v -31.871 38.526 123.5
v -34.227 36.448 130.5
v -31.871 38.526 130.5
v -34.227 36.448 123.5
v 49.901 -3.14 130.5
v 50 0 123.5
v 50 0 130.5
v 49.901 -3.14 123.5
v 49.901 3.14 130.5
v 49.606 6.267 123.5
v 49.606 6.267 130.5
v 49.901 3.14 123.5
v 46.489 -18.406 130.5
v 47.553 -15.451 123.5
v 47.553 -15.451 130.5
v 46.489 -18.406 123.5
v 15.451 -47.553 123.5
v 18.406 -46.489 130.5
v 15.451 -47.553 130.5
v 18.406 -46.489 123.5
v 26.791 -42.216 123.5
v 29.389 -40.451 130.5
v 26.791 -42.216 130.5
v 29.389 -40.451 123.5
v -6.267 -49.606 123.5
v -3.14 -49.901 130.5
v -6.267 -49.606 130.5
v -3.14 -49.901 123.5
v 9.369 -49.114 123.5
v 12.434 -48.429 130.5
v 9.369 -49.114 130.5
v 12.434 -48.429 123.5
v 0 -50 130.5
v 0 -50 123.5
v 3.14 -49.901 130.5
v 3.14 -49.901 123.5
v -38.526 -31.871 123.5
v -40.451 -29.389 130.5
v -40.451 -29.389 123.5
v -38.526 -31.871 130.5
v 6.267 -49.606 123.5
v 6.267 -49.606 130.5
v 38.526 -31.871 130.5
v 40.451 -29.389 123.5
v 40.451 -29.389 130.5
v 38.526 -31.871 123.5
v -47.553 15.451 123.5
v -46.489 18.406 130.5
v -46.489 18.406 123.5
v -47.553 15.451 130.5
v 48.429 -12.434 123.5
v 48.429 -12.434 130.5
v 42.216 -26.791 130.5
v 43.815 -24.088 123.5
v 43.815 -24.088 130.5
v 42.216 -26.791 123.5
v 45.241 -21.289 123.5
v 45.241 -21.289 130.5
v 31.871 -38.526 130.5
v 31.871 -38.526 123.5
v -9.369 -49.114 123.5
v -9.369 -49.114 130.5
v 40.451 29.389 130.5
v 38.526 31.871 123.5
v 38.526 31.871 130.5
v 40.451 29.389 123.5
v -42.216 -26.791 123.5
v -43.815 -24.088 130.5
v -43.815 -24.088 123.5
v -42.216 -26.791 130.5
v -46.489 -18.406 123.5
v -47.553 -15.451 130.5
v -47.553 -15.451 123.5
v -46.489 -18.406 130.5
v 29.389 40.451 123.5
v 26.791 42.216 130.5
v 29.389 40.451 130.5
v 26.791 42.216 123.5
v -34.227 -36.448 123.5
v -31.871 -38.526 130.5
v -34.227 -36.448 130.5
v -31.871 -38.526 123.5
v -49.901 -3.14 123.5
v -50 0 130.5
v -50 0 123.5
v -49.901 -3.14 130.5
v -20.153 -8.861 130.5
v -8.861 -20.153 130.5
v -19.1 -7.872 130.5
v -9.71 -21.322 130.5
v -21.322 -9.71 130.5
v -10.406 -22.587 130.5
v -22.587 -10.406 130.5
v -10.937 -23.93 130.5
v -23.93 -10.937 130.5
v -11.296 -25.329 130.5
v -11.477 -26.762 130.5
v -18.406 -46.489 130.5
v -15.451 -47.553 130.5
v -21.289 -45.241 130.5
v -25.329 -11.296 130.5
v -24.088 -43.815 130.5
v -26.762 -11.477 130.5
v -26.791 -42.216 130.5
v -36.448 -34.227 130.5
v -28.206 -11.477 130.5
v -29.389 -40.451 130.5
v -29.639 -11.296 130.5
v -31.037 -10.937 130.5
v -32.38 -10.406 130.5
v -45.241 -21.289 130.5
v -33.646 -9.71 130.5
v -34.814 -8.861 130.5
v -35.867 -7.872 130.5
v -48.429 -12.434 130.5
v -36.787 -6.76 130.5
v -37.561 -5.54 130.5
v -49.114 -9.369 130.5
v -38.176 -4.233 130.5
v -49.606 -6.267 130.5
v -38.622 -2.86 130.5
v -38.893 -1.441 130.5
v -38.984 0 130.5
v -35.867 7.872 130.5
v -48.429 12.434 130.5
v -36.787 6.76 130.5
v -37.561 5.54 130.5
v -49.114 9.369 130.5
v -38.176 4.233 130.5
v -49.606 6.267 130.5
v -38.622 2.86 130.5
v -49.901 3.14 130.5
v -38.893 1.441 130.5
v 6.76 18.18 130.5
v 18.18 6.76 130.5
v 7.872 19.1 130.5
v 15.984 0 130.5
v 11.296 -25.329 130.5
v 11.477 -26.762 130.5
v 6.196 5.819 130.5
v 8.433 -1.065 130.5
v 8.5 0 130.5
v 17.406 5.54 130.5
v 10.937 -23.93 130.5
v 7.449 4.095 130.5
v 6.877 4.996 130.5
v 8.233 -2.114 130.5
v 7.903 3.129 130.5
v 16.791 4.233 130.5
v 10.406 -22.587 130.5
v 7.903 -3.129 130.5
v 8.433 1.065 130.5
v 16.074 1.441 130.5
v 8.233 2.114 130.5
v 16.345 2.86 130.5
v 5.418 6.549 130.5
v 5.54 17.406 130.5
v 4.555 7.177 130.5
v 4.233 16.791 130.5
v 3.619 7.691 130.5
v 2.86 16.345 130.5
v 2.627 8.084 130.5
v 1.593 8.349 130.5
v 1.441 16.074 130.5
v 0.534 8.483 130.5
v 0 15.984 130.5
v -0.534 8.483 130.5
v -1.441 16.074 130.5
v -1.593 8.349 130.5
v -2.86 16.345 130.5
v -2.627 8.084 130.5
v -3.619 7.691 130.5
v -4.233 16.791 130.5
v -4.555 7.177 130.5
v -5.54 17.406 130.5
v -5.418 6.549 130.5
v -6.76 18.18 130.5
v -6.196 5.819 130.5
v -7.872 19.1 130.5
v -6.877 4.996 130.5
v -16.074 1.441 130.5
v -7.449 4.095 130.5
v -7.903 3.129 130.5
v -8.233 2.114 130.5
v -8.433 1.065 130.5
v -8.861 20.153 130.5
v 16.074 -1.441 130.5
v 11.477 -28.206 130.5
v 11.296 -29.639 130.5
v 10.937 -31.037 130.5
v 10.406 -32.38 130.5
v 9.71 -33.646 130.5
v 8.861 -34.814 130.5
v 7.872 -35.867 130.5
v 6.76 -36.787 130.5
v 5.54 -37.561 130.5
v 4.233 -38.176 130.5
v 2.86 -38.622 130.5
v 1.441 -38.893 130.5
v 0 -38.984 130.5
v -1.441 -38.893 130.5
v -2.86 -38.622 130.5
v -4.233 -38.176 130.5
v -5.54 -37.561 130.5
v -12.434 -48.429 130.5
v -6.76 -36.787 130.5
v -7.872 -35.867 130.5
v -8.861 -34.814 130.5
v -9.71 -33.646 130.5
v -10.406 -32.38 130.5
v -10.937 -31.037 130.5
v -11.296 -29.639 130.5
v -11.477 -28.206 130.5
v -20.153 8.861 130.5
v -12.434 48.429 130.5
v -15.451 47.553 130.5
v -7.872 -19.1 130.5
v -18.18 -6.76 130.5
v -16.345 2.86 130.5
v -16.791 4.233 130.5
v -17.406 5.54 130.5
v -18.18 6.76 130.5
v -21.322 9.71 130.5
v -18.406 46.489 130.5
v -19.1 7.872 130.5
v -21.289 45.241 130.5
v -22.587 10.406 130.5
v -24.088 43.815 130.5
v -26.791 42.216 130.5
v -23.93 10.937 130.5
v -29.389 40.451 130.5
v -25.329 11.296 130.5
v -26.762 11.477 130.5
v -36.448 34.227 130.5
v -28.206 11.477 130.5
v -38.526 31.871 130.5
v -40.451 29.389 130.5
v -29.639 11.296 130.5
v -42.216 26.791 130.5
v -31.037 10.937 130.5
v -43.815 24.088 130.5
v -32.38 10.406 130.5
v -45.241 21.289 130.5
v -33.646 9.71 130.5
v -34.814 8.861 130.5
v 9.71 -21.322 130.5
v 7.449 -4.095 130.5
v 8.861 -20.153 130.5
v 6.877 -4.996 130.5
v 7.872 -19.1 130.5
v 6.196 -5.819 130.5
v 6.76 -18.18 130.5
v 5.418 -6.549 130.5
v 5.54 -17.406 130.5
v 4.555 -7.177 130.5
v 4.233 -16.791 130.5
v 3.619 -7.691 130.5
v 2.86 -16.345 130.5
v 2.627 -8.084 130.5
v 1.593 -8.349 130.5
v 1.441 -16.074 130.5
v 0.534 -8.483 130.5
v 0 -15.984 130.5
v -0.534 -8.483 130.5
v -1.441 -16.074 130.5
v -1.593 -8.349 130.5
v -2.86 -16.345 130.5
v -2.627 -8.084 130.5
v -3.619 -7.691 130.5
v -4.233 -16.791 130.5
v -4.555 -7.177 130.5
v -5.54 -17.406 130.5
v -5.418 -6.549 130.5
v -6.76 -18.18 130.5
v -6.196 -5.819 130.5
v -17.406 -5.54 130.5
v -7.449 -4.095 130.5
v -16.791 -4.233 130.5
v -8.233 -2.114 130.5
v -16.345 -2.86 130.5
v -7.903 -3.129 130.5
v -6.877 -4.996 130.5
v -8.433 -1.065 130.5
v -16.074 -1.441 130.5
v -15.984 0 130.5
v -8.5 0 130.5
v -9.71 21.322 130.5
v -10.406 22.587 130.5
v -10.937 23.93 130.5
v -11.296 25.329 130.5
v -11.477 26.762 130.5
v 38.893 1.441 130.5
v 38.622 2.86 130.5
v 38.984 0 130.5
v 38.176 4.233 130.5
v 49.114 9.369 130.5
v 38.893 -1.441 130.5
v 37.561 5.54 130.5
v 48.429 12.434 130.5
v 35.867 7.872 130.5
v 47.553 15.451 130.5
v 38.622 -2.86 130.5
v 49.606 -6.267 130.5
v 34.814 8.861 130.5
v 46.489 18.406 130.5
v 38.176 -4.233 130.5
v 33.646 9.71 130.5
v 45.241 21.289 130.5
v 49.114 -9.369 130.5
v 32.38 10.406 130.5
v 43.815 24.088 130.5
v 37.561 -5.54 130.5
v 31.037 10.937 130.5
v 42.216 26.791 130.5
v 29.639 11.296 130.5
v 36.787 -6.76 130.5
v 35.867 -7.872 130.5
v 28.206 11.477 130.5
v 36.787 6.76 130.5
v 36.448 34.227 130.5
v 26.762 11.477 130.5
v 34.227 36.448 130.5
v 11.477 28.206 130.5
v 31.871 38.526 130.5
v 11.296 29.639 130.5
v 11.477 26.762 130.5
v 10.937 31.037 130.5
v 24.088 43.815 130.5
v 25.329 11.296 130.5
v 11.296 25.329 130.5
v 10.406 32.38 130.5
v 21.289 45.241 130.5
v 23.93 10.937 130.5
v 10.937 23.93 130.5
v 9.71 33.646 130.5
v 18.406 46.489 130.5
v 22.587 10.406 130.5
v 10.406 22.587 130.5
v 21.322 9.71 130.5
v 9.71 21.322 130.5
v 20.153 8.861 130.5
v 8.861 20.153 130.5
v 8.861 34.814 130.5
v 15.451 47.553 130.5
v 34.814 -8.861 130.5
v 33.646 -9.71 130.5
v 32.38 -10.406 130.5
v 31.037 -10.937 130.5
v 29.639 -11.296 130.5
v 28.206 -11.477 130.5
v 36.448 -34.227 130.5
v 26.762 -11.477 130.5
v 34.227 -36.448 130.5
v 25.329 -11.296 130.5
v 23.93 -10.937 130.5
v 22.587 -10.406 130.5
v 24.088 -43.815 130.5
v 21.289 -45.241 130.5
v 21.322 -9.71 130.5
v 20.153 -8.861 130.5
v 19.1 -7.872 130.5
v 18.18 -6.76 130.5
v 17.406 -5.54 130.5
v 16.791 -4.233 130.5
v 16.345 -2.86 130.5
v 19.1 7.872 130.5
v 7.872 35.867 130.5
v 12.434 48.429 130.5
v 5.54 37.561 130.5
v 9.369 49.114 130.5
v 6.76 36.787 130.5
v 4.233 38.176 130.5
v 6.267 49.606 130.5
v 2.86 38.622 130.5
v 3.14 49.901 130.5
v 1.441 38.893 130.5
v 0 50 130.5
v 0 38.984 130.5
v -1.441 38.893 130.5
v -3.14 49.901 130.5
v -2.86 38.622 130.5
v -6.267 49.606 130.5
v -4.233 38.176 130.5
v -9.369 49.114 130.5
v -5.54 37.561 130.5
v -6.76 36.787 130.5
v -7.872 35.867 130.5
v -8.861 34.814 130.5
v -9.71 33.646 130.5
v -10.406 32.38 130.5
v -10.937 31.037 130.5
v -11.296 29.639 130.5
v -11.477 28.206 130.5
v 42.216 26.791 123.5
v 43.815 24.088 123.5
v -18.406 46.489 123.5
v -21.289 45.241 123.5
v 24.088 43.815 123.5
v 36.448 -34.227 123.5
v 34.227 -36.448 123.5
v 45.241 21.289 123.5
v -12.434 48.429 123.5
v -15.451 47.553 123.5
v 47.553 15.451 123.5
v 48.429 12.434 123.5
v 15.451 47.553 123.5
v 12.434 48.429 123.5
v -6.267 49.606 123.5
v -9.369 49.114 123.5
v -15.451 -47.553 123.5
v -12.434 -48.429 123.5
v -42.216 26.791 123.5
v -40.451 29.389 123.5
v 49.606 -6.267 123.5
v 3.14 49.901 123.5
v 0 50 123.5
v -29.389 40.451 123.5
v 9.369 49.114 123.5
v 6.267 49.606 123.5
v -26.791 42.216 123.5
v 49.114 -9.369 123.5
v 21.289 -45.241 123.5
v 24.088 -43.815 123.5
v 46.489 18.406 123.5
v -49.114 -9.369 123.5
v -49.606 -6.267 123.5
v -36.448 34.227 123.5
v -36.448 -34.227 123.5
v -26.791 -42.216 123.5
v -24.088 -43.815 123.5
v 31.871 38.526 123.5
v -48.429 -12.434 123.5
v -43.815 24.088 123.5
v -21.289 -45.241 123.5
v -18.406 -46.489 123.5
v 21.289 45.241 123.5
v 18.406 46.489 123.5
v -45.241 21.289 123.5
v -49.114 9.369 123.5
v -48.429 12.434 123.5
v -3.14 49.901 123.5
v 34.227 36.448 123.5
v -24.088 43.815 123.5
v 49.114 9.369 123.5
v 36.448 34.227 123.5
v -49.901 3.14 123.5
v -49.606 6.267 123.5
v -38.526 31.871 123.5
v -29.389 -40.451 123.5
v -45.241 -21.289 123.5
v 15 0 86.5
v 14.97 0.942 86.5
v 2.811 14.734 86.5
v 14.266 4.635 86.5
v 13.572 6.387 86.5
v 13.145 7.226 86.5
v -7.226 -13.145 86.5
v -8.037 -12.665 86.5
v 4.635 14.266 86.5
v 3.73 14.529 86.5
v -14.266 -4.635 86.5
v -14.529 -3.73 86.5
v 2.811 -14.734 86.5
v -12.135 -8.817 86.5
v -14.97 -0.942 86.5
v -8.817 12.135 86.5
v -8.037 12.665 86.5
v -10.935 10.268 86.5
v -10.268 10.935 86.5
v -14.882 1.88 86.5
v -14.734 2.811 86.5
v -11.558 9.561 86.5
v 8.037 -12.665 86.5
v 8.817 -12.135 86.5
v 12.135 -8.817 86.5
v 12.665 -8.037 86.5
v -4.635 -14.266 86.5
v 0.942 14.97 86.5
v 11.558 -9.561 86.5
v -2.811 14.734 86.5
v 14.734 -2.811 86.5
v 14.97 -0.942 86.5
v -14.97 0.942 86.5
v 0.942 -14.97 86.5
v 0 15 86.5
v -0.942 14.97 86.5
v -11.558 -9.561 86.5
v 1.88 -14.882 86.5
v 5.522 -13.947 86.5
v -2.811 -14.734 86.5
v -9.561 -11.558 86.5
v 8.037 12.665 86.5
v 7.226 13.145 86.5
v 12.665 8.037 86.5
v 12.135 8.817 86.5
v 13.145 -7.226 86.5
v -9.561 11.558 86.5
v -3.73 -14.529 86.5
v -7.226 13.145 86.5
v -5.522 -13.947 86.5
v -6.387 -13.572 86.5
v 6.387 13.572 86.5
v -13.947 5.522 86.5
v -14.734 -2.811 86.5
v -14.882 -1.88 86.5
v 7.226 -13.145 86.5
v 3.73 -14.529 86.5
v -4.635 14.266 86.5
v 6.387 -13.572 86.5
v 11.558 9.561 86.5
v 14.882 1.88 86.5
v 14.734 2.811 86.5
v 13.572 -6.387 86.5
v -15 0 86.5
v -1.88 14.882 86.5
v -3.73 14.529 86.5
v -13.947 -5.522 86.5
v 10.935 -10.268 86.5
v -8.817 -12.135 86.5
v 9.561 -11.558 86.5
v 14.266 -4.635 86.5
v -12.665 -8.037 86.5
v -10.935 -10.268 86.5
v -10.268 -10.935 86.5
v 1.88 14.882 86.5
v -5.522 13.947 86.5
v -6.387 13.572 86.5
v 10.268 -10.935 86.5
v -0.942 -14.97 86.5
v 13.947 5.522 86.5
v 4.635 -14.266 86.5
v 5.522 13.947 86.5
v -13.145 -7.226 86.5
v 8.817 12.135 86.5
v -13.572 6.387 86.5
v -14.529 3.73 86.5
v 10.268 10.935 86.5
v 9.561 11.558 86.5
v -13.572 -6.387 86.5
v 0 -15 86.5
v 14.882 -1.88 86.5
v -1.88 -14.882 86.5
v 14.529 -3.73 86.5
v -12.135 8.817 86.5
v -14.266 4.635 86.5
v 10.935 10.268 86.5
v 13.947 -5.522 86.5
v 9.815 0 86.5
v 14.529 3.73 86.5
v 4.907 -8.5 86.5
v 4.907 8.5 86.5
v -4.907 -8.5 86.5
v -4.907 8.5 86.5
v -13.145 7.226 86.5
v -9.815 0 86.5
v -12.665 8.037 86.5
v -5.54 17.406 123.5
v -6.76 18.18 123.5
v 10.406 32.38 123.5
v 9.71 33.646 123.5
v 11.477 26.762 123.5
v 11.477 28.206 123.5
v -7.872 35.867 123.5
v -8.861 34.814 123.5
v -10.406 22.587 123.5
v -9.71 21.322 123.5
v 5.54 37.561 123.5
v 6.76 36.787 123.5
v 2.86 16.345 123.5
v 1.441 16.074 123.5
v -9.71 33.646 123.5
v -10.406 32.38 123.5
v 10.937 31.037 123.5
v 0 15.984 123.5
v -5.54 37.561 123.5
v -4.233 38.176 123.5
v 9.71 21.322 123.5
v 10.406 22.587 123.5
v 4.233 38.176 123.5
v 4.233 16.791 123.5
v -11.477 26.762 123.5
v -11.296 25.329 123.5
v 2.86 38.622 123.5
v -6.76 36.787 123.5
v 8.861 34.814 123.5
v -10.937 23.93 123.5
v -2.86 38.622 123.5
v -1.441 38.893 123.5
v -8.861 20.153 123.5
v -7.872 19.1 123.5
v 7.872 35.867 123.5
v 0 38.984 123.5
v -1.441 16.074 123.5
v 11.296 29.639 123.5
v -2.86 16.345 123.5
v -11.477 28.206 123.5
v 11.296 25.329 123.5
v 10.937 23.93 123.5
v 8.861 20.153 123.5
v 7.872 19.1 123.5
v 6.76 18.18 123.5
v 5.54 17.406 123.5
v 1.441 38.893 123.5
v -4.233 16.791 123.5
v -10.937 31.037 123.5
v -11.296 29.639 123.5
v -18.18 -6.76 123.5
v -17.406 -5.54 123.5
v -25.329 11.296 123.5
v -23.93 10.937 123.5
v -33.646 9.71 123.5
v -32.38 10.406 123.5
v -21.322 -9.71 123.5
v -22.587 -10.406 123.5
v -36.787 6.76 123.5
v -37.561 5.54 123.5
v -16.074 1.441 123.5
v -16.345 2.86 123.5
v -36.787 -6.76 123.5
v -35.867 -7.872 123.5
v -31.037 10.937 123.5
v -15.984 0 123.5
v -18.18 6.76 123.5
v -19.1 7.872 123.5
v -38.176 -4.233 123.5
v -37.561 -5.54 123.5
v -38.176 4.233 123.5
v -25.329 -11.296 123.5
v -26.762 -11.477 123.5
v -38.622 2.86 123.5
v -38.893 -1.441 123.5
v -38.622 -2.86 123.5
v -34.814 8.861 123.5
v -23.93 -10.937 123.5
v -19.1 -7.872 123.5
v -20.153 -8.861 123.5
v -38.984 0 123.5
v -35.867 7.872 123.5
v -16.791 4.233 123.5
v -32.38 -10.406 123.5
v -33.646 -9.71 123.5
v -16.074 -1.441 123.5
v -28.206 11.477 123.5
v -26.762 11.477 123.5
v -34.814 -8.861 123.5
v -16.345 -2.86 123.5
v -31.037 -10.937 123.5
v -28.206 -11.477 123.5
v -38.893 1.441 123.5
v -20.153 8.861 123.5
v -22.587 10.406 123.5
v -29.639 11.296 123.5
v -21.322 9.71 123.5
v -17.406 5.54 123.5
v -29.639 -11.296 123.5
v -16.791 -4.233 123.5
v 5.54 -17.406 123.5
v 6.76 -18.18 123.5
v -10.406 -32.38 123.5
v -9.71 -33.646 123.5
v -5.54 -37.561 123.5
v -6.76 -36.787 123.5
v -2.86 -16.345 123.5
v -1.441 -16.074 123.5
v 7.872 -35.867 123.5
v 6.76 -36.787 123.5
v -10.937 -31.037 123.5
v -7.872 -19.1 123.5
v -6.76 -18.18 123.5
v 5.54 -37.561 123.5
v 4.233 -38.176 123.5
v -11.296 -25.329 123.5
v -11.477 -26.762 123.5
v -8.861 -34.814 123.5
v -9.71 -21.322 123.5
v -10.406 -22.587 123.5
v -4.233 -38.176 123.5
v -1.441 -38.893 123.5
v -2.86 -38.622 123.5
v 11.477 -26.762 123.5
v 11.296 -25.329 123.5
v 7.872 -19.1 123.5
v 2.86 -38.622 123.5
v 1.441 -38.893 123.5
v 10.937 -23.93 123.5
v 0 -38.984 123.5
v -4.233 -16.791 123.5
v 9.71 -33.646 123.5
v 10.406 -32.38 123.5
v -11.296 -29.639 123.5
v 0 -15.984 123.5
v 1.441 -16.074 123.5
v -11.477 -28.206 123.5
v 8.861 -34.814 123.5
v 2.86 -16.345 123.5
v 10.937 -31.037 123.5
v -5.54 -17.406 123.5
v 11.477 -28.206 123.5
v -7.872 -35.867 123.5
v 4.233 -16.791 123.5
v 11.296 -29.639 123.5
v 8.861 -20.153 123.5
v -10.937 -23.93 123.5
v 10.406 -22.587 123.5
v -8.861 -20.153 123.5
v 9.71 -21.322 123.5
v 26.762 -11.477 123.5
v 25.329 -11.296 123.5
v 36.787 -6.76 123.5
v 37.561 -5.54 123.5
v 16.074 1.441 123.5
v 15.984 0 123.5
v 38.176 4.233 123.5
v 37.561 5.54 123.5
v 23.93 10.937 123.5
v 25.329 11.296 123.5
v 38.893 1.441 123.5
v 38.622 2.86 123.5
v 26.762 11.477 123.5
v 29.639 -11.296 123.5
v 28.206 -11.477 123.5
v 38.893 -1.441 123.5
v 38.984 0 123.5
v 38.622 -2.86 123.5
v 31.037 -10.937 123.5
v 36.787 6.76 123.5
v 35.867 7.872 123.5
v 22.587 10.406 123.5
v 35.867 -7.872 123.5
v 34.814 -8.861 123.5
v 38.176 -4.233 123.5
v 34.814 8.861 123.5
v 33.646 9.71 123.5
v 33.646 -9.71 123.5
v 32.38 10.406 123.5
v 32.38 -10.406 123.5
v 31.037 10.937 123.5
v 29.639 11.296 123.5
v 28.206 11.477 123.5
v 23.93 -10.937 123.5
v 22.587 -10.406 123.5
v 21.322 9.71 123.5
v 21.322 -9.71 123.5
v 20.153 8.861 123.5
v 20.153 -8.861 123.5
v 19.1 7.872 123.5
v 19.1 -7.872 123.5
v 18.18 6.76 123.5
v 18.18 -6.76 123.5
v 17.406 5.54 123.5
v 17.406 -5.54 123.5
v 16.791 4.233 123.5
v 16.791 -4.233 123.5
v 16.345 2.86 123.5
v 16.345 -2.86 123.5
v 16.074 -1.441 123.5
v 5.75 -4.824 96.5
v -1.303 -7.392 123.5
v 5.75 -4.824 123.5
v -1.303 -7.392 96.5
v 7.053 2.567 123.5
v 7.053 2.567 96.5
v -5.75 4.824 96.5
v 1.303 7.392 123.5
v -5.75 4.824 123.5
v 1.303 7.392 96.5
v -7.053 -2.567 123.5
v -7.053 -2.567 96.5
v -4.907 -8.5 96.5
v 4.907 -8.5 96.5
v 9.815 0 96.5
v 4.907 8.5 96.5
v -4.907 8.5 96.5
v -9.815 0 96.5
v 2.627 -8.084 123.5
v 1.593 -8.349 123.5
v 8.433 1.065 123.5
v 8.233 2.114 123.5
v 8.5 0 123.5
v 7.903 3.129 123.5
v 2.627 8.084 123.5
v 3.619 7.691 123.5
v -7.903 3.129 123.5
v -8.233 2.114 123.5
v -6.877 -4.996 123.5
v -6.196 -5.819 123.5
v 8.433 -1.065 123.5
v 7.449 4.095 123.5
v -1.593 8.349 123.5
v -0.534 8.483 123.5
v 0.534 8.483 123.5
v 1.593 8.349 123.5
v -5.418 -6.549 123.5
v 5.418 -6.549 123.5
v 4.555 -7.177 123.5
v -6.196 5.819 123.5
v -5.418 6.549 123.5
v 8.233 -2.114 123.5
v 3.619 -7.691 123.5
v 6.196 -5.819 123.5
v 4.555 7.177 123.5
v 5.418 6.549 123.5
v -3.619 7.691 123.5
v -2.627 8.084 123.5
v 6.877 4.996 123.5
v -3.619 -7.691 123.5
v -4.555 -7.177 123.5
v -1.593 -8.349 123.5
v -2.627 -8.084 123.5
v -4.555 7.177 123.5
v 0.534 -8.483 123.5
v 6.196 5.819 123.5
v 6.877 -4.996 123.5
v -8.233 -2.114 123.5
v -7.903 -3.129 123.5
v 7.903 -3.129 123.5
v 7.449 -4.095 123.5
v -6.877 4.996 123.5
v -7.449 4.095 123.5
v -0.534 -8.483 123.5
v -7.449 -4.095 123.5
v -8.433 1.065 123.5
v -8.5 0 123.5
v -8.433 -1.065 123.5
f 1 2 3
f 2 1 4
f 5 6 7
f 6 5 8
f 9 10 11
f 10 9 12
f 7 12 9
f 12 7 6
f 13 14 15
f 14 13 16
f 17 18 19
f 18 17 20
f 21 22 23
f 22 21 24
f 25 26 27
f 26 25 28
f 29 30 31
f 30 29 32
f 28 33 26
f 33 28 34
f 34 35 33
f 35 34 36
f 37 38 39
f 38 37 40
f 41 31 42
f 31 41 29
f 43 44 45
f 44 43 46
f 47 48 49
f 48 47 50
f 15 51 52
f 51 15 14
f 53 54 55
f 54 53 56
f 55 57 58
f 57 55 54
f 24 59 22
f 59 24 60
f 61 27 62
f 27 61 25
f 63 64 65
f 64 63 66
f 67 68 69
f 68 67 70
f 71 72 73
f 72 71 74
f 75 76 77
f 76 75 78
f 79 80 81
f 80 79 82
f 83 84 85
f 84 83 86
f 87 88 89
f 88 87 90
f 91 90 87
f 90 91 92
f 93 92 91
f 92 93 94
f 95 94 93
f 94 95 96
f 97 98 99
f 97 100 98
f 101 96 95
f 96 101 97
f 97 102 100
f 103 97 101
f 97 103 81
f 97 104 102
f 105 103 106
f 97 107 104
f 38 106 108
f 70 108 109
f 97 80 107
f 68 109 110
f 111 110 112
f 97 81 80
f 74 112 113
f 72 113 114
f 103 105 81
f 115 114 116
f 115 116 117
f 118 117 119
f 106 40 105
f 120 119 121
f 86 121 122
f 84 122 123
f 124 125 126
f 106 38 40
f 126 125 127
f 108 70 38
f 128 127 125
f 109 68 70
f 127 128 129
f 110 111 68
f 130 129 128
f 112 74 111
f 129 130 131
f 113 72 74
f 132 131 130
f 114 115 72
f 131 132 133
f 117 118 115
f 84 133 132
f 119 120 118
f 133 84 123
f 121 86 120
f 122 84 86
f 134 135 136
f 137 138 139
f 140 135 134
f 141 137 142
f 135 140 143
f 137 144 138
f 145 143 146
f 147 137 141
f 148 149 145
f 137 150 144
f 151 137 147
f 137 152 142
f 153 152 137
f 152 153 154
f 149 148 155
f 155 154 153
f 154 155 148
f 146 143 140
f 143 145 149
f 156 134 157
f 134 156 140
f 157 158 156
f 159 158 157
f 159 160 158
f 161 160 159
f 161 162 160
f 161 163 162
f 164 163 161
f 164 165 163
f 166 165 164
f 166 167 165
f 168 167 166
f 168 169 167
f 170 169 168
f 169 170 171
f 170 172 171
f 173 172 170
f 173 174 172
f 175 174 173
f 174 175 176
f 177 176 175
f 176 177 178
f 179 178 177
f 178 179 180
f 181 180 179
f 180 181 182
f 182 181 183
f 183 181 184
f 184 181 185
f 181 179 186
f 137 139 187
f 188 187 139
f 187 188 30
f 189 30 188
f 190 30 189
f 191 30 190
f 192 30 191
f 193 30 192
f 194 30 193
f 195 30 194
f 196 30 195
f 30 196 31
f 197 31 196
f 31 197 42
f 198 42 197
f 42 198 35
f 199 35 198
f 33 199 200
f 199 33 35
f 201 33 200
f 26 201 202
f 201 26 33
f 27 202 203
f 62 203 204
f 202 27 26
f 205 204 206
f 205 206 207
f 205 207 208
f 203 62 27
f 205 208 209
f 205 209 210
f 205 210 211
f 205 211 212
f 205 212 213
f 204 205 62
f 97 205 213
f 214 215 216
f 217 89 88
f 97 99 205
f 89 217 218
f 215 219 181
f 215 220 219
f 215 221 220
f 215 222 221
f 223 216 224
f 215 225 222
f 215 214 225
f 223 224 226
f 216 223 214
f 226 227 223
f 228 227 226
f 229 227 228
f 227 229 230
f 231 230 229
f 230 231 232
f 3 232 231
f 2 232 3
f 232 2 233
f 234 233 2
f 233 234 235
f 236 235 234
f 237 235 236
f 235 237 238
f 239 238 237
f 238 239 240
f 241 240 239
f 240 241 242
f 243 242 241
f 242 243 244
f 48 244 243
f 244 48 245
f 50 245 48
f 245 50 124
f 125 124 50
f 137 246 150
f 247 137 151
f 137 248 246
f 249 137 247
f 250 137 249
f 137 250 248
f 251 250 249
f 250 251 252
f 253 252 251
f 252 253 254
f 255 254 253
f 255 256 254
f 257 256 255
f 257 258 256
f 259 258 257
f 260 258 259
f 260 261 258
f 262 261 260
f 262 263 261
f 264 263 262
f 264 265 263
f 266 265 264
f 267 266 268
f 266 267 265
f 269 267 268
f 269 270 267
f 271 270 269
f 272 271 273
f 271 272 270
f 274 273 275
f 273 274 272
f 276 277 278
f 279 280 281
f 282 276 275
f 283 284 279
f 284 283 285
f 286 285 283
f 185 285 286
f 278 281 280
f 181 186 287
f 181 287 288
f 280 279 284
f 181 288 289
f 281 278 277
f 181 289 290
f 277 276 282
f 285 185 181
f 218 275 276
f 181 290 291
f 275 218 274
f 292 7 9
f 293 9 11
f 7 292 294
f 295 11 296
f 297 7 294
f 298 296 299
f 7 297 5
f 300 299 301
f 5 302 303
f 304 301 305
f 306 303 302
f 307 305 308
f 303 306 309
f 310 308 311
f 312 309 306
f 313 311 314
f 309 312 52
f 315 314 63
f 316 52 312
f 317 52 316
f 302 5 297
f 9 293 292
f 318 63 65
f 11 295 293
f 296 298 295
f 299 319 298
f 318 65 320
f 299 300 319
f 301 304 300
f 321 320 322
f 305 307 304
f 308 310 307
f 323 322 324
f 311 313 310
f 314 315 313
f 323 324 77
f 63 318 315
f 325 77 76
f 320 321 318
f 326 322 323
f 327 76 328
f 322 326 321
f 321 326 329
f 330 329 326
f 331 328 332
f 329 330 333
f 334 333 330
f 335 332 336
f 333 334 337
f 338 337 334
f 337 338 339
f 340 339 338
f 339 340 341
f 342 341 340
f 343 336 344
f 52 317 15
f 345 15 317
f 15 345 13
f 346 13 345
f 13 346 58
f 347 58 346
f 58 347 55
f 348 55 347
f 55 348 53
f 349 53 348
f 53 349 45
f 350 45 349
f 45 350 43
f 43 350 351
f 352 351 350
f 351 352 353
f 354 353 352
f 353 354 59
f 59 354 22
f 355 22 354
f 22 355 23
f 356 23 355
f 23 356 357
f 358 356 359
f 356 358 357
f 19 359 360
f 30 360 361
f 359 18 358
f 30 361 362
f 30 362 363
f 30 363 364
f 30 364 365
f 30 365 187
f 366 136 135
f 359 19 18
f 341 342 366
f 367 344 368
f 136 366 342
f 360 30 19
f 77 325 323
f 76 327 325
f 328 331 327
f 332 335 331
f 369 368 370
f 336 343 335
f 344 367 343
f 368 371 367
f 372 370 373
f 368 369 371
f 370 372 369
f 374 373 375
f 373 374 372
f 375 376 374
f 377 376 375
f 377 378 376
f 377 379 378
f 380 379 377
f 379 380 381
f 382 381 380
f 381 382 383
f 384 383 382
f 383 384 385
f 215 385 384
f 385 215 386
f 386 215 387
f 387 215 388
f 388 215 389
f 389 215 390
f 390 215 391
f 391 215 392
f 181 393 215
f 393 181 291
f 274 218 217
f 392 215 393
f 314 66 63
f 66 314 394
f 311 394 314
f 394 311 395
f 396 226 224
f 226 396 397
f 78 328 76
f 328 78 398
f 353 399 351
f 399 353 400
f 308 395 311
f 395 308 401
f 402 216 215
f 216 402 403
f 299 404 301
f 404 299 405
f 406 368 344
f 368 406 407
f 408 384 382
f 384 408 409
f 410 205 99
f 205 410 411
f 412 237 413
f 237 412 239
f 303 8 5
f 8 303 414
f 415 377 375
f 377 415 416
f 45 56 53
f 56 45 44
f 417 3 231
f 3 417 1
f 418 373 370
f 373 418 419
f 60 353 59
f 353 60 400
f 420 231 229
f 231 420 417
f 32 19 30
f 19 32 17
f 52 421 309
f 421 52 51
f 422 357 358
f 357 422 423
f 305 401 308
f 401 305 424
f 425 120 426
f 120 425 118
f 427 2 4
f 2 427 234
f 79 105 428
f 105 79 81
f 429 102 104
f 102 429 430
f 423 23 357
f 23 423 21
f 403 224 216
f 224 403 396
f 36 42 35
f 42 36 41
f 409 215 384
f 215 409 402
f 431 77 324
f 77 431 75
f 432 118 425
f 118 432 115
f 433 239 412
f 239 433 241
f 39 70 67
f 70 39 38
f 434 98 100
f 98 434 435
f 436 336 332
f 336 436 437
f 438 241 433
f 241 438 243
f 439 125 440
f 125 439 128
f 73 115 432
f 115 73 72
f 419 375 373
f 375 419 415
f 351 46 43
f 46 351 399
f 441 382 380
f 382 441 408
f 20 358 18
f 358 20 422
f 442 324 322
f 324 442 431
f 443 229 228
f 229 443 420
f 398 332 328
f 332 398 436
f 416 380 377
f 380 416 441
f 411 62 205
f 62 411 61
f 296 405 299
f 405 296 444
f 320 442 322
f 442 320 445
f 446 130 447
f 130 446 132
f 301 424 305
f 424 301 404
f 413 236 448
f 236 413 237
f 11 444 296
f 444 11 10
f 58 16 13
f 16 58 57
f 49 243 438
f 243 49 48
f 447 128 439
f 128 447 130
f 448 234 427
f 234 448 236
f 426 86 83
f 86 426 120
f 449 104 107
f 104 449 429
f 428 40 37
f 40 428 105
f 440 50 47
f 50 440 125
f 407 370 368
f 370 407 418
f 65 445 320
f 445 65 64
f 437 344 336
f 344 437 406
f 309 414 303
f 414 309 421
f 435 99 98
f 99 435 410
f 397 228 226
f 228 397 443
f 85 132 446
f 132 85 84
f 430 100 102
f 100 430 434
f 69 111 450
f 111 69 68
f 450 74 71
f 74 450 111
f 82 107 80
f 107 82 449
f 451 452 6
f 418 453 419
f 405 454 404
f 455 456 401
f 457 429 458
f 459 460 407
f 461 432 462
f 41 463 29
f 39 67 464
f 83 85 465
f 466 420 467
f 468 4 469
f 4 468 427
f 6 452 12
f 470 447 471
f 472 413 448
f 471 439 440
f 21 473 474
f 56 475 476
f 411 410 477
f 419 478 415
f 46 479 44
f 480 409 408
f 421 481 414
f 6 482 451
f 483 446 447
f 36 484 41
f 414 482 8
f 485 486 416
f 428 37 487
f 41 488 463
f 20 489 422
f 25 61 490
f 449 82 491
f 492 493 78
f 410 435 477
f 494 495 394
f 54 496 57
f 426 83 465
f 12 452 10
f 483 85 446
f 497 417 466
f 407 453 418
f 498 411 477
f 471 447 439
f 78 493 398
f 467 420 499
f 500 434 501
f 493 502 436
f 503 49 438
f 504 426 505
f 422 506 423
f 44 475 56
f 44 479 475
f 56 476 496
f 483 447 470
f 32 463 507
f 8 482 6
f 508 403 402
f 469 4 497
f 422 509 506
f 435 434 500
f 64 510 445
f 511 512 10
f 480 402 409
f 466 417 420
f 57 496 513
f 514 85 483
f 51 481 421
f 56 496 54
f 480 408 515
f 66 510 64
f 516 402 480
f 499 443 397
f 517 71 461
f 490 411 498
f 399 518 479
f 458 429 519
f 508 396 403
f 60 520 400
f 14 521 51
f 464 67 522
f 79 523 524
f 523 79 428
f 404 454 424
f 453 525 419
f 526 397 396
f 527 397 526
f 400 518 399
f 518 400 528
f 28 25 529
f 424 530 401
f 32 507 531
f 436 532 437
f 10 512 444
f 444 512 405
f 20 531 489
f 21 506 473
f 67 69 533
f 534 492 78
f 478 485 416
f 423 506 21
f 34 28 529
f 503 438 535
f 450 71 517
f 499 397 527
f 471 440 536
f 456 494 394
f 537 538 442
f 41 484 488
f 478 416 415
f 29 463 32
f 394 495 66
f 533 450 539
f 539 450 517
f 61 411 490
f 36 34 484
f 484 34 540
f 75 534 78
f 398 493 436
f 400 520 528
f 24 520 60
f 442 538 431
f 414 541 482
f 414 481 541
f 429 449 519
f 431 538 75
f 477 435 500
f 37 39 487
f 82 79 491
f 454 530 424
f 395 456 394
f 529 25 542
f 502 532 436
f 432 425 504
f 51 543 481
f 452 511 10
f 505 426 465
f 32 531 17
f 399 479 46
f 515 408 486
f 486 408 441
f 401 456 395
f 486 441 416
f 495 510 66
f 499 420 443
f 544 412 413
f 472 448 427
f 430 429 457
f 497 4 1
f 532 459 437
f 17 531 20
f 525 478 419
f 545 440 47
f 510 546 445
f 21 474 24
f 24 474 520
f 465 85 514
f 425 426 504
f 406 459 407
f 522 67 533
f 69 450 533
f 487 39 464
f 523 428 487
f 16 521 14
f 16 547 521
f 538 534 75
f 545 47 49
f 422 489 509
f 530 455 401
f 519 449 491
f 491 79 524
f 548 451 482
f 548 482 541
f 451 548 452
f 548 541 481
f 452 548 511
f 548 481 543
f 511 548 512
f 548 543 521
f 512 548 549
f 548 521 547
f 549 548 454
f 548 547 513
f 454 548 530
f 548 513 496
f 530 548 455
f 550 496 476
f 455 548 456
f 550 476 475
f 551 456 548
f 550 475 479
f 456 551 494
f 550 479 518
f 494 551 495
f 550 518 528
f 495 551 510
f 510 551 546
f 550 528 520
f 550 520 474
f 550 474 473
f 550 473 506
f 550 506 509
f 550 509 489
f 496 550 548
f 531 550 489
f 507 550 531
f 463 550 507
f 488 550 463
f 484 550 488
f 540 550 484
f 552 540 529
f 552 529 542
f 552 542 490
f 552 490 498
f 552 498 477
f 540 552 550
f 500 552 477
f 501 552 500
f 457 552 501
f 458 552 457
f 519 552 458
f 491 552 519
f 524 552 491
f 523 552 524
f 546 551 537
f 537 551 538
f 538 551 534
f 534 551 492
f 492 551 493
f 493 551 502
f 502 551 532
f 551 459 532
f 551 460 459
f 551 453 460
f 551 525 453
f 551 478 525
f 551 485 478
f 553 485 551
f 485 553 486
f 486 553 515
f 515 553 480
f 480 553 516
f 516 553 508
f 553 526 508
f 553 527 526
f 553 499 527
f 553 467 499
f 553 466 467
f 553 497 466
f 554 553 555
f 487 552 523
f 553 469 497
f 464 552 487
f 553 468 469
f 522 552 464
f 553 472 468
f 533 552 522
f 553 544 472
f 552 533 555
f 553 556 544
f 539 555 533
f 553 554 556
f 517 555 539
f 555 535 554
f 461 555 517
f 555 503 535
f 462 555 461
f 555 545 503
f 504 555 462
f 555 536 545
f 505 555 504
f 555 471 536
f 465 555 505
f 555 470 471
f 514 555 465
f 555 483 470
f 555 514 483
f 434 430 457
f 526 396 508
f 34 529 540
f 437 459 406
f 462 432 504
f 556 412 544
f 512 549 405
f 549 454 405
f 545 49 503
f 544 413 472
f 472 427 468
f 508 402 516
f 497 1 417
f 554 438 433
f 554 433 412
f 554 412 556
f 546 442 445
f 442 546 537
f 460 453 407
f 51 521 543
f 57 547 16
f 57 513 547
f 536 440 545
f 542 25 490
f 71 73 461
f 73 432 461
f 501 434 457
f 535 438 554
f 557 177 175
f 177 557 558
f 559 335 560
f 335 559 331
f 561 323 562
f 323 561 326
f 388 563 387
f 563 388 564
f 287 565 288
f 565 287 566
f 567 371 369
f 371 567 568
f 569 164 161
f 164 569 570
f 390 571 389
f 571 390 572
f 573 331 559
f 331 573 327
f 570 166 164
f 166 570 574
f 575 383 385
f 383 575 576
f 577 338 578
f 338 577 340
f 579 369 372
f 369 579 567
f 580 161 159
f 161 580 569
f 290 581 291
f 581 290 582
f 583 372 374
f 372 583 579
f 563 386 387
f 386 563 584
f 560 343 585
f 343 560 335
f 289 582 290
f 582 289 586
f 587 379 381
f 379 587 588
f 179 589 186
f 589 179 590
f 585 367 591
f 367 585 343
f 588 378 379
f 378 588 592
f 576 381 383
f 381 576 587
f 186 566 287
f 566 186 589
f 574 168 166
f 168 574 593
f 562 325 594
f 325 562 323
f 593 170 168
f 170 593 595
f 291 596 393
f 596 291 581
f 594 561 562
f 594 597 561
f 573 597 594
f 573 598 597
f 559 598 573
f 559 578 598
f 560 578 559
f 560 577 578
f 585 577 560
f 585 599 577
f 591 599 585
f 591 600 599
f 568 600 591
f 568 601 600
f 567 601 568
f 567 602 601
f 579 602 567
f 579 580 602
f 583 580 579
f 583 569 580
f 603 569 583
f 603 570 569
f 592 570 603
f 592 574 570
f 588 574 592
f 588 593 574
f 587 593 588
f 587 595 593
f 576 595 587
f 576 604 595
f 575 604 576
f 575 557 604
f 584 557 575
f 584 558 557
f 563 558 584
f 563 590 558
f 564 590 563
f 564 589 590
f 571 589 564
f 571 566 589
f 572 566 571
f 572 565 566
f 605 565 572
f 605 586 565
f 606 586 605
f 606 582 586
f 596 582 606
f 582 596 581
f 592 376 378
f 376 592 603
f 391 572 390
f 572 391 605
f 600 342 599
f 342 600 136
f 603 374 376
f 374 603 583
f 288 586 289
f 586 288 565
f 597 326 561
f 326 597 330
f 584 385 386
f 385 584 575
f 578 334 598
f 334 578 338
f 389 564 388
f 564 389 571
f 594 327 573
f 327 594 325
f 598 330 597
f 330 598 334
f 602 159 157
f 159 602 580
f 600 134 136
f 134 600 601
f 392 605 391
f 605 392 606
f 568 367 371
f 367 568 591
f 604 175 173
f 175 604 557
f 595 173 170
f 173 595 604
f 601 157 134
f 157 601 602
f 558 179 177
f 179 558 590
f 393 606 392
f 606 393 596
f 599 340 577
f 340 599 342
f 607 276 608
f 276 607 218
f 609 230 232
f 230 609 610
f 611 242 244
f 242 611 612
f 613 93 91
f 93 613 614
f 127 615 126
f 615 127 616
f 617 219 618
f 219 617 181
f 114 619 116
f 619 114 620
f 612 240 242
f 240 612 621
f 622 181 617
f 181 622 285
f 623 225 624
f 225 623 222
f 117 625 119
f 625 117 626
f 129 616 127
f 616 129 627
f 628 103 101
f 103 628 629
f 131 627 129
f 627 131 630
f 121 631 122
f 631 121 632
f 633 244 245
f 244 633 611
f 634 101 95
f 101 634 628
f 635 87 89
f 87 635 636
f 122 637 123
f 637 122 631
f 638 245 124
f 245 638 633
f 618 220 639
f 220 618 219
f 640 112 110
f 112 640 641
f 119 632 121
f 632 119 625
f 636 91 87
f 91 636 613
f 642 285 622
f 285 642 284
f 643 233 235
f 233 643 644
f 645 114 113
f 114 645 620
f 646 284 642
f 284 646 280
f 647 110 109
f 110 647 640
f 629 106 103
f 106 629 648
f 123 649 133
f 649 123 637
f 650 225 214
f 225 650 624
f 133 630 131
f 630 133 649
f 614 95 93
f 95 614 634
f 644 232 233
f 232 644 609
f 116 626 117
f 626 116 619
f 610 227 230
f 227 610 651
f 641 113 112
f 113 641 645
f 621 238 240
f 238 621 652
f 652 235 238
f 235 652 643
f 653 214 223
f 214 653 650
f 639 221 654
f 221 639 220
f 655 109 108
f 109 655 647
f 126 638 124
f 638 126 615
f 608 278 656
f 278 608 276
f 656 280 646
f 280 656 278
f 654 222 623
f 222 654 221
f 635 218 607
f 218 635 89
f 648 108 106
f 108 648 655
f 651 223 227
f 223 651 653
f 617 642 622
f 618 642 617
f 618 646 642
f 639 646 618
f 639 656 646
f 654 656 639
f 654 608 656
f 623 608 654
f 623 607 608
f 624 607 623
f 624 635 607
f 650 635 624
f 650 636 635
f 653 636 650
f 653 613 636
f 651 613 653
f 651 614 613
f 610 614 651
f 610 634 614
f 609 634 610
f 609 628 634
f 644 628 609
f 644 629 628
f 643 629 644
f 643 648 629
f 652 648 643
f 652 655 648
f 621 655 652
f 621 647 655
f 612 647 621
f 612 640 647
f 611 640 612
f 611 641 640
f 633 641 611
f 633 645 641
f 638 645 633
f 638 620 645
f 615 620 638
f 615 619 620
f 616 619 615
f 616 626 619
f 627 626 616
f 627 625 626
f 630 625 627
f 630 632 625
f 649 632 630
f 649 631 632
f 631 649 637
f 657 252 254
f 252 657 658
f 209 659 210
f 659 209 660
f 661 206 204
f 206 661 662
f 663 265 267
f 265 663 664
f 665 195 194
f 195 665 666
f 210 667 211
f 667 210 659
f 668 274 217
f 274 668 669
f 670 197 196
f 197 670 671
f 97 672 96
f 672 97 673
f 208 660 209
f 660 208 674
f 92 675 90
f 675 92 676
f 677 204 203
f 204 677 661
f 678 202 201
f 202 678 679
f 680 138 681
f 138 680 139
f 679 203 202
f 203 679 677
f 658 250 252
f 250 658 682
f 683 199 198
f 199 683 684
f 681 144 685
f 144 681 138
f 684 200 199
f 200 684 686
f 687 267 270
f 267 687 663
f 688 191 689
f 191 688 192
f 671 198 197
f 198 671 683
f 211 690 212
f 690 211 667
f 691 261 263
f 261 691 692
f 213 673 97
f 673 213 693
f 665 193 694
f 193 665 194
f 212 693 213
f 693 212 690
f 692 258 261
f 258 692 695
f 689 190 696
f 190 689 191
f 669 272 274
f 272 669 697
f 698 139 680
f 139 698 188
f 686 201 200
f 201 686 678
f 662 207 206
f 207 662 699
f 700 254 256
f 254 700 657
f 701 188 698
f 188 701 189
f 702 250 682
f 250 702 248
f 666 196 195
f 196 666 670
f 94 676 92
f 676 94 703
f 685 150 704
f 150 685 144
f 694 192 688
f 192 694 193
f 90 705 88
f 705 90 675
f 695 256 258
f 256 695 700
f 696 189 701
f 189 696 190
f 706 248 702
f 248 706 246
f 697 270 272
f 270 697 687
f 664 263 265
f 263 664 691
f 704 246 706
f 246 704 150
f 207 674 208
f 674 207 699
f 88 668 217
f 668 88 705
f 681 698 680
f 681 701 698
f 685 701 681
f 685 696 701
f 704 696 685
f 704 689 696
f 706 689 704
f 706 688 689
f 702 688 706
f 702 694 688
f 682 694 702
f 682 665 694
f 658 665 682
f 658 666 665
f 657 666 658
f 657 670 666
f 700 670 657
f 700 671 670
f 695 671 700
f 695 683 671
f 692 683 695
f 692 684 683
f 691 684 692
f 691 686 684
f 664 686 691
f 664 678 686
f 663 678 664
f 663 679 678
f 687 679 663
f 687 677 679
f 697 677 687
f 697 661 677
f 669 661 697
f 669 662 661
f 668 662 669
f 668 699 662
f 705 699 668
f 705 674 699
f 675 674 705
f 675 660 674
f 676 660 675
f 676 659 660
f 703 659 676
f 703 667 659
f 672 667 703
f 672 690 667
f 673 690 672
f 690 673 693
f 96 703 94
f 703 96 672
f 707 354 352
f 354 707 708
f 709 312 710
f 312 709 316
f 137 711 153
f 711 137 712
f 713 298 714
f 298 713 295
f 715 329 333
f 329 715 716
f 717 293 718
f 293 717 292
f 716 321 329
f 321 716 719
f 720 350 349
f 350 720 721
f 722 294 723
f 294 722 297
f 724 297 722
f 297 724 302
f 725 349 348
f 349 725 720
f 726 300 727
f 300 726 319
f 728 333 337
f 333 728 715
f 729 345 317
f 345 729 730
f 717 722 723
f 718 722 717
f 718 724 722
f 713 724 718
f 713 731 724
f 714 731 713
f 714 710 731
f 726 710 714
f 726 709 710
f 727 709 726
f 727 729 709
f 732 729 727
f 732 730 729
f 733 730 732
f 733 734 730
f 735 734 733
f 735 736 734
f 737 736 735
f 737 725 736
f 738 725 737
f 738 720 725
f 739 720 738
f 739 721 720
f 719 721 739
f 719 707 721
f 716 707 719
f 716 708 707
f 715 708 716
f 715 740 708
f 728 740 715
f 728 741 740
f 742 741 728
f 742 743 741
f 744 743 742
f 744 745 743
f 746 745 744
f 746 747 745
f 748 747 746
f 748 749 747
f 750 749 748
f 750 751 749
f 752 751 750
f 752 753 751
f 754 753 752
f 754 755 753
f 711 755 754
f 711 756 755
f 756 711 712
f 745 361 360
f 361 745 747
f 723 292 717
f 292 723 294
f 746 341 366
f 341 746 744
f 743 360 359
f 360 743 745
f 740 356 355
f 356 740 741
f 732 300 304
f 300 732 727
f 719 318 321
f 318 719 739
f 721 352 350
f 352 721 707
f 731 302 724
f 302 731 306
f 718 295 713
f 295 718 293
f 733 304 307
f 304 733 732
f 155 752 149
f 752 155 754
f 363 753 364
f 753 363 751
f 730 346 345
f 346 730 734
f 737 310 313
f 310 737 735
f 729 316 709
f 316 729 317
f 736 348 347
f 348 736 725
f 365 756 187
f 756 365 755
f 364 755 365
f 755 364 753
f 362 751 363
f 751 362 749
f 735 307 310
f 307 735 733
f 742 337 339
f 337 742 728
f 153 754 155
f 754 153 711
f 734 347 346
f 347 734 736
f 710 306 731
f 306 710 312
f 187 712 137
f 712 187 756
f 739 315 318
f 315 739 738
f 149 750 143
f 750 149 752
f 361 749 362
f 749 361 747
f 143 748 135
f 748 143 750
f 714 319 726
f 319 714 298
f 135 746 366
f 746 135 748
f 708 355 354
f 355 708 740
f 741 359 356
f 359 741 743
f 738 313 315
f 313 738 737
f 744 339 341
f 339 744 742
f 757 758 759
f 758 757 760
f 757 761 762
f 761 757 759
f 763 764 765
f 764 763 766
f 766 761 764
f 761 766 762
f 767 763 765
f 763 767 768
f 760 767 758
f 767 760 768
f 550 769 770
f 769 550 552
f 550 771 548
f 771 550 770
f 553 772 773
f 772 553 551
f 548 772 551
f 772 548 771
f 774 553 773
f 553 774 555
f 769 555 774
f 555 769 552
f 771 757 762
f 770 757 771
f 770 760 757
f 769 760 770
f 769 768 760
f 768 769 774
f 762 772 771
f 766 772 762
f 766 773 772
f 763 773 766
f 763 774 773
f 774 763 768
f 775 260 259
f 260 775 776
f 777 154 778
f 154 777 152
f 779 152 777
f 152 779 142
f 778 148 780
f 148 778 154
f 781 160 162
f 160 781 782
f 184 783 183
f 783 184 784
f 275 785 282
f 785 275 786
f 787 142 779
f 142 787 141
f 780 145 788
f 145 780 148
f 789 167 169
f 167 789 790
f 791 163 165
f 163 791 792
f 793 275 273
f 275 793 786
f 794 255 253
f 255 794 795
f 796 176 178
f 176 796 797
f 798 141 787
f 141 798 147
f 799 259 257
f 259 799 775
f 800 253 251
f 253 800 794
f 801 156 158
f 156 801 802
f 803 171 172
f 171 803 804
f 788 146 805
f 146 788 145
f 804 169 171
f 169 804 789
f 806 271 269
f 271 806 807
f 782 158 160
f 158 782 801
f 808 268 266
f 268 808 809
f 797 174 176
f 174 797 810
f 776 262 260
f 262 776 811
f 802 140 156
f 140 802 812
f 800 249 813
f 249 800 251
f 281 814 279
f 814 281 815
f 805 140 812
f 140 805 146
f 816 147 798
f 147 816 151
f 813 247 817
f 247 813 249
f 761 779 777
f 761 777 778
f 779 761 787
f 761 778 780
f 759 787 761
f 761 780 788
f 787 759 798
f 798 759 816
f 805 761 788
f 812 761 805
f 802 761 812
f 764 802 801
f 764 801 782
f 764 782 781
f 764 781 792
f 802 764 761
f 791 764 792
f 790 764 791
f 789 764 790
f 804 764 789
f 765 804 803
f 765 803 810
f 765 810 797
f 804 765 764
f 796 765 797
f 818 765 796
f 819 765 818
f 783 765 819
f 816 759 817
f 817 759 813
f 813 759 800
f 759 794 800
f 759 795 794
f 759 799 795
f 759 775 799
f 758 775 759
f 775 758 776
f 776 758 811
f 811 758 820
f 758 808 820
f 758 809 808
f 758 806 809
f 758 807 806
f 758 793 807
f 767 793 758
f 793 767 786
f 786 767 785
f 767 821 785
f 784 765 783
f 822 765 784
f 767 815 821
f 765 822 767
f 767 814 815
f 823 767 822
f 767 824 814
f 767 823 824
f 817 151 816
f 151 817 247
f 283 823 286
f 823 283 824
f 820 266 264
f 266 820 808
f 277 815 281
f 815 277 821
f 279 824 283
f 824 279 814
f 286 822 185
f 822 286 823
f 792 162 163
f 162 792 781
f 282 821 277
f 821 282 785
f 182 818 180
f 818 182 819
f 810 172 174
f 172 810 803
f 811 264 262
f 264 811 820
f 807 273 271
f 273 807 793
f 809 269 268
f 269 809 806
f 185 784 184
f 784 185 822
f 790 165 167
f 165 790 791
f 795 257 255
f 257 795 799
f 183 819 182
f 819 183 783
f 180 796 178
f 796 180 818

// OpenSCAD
// file: Parameters.scad
// Planetary gear bearing (customizable)
tinny=0.005;

D=100;  // outer diameter of ring
T=20;   // thickness

//Ball Bearing
bbT=7;      // thickness
bbED=22;    // external diameter
bbID=8;     // internal diameter
bbIR=12;    // internal ring
bbIDWH=1;   // internal disk washer high

//Thrust Ball Bearing
tbbT=7;      // thickness
tbbED=16;    // external diameter
tbbID=8;     // internal diameter

SlowPartHigh=44;
slowPartSmallDiameter=30;
lhhW=17; // large hexagonal hole Width
lhhH=10; // large hexagonal hole High

//Drill Support
dsHighTop=180;
dsWidth=200;
dsTickness=50;
dsDepth= 70;
dsHole=43;

dsHighBottom=25;
HoleDiameterForThreadedRod=14;
HoleDiameterForBearingBallPlate=34;
BearingBallPlateHight=5;
FixingHolesDiameter=5.5;

adjustment=0.5;
washers=1;

// clearance
tol=0.15;

number_of_planets=4;
number_of_teeth_on_planets=15;
approximate_number_of_teeth_on_sun=10;

// pressure angle
P=45;//[30:60]

nTwist=1;   // number of teeth to twist across
w=13;       // width of little hexagonal hole
wH=6;       // Height of little hexagonal hole
DR=0.5*1;   // maximum depth ratio of teeth

m=round(number_of_planets);
np=round(number_of_teeth_on_planets);
ns1=approximate_number_of_teeth_on_sun;
k1=round(2/m*(ns1+np));
k= k1*m%2!=0 ? k1+1 : k1;
ns=k*m/2-np;
nr=ns+2*np;
pitchD=0.9*D/(1+min(PI/(2*nr*tan(P)),PI*DR/nr));
pitch=pitchD*PI/nr;
helix_angle=atan(2*nTwist*pitch/T);
phi=$t*360/m;

echo("ns=",ns);
echo("pitch =",pitch);
echo("helix_angle=",helix_angle);

module FixingDrillSupportParts(location)
{
    rotate([90,0,0]) 
        translate([0, location,  0]) 
        {
            translate([-((dsWidth - 2*dsTickness)+((dsWidth - 2*dsTickness)/2))/2,-dsTickness,0]) 
                cylinder(r=FixingHolesDiameter/2, h=dsDepth, center=true);
            translate([+((dsWidth - 2*dsTickness)+((dsWidth - 2*dsTickness)/2))/2,-dsTickness,0]) 
                cylinder(r=FixingHolesDiameter/2, h=dsDepth, center=true);
        }
}
// main file
include <./Parameters.scad>;

translate([0,0,105]) SlowPart();

module SlowPart()
difference()
{
    SlowPartBody();
    ThinChuckHole();
    LargeChuckHole();
    for(i=[1:m]) BallBearingHole(i);  
    ThrustBallBearingHole();
}
module SlowPartBody()
{
    union()
    {
        translate([0,0,SlowPartHigh/2]) 
            cylinder(r=D/2, h=bbT, center=true, $fn=100);
        cylinder($fa=12, $fs=2, h=SlowPartHigh-bbT, r1=slowPartSmallDiameter/2, r2=D/2, center=true, $fn=100);
    }
}
module BallBearingHole(i)
{
    translate([0,0,+SlowPartHigh/2])
        rotate([0,0,i*360/m+phi]) 
            translate([pitchD/2*(ns+np)/nr,0,0])
                cylinder(r=bbED/2 + adjustment, h=bbT, center=true, $fn=50);
}
module ThinChuckHole() 
    translate([0,0,+bbT/2]) 
        rotate([0,0,20])
            cylinder(r=w/sqrt(3), h=SlowPartHigh, center=true, $fn=6);

module LargeChuckHole() 
    translate([0,0,-SlowPartHigh/2 + bbT/2]) 
        cylinder(r=lhhW/sqrt(3), h=lhhH, $fn=6);

module ThrustBallBearingHole() 
    translate([0,0,SlowPartHigh/2 - tbbT/2]) 
        cylinder(r=tbbED/2 + adjustment, h=tbbT+washers, $fn=50);  
